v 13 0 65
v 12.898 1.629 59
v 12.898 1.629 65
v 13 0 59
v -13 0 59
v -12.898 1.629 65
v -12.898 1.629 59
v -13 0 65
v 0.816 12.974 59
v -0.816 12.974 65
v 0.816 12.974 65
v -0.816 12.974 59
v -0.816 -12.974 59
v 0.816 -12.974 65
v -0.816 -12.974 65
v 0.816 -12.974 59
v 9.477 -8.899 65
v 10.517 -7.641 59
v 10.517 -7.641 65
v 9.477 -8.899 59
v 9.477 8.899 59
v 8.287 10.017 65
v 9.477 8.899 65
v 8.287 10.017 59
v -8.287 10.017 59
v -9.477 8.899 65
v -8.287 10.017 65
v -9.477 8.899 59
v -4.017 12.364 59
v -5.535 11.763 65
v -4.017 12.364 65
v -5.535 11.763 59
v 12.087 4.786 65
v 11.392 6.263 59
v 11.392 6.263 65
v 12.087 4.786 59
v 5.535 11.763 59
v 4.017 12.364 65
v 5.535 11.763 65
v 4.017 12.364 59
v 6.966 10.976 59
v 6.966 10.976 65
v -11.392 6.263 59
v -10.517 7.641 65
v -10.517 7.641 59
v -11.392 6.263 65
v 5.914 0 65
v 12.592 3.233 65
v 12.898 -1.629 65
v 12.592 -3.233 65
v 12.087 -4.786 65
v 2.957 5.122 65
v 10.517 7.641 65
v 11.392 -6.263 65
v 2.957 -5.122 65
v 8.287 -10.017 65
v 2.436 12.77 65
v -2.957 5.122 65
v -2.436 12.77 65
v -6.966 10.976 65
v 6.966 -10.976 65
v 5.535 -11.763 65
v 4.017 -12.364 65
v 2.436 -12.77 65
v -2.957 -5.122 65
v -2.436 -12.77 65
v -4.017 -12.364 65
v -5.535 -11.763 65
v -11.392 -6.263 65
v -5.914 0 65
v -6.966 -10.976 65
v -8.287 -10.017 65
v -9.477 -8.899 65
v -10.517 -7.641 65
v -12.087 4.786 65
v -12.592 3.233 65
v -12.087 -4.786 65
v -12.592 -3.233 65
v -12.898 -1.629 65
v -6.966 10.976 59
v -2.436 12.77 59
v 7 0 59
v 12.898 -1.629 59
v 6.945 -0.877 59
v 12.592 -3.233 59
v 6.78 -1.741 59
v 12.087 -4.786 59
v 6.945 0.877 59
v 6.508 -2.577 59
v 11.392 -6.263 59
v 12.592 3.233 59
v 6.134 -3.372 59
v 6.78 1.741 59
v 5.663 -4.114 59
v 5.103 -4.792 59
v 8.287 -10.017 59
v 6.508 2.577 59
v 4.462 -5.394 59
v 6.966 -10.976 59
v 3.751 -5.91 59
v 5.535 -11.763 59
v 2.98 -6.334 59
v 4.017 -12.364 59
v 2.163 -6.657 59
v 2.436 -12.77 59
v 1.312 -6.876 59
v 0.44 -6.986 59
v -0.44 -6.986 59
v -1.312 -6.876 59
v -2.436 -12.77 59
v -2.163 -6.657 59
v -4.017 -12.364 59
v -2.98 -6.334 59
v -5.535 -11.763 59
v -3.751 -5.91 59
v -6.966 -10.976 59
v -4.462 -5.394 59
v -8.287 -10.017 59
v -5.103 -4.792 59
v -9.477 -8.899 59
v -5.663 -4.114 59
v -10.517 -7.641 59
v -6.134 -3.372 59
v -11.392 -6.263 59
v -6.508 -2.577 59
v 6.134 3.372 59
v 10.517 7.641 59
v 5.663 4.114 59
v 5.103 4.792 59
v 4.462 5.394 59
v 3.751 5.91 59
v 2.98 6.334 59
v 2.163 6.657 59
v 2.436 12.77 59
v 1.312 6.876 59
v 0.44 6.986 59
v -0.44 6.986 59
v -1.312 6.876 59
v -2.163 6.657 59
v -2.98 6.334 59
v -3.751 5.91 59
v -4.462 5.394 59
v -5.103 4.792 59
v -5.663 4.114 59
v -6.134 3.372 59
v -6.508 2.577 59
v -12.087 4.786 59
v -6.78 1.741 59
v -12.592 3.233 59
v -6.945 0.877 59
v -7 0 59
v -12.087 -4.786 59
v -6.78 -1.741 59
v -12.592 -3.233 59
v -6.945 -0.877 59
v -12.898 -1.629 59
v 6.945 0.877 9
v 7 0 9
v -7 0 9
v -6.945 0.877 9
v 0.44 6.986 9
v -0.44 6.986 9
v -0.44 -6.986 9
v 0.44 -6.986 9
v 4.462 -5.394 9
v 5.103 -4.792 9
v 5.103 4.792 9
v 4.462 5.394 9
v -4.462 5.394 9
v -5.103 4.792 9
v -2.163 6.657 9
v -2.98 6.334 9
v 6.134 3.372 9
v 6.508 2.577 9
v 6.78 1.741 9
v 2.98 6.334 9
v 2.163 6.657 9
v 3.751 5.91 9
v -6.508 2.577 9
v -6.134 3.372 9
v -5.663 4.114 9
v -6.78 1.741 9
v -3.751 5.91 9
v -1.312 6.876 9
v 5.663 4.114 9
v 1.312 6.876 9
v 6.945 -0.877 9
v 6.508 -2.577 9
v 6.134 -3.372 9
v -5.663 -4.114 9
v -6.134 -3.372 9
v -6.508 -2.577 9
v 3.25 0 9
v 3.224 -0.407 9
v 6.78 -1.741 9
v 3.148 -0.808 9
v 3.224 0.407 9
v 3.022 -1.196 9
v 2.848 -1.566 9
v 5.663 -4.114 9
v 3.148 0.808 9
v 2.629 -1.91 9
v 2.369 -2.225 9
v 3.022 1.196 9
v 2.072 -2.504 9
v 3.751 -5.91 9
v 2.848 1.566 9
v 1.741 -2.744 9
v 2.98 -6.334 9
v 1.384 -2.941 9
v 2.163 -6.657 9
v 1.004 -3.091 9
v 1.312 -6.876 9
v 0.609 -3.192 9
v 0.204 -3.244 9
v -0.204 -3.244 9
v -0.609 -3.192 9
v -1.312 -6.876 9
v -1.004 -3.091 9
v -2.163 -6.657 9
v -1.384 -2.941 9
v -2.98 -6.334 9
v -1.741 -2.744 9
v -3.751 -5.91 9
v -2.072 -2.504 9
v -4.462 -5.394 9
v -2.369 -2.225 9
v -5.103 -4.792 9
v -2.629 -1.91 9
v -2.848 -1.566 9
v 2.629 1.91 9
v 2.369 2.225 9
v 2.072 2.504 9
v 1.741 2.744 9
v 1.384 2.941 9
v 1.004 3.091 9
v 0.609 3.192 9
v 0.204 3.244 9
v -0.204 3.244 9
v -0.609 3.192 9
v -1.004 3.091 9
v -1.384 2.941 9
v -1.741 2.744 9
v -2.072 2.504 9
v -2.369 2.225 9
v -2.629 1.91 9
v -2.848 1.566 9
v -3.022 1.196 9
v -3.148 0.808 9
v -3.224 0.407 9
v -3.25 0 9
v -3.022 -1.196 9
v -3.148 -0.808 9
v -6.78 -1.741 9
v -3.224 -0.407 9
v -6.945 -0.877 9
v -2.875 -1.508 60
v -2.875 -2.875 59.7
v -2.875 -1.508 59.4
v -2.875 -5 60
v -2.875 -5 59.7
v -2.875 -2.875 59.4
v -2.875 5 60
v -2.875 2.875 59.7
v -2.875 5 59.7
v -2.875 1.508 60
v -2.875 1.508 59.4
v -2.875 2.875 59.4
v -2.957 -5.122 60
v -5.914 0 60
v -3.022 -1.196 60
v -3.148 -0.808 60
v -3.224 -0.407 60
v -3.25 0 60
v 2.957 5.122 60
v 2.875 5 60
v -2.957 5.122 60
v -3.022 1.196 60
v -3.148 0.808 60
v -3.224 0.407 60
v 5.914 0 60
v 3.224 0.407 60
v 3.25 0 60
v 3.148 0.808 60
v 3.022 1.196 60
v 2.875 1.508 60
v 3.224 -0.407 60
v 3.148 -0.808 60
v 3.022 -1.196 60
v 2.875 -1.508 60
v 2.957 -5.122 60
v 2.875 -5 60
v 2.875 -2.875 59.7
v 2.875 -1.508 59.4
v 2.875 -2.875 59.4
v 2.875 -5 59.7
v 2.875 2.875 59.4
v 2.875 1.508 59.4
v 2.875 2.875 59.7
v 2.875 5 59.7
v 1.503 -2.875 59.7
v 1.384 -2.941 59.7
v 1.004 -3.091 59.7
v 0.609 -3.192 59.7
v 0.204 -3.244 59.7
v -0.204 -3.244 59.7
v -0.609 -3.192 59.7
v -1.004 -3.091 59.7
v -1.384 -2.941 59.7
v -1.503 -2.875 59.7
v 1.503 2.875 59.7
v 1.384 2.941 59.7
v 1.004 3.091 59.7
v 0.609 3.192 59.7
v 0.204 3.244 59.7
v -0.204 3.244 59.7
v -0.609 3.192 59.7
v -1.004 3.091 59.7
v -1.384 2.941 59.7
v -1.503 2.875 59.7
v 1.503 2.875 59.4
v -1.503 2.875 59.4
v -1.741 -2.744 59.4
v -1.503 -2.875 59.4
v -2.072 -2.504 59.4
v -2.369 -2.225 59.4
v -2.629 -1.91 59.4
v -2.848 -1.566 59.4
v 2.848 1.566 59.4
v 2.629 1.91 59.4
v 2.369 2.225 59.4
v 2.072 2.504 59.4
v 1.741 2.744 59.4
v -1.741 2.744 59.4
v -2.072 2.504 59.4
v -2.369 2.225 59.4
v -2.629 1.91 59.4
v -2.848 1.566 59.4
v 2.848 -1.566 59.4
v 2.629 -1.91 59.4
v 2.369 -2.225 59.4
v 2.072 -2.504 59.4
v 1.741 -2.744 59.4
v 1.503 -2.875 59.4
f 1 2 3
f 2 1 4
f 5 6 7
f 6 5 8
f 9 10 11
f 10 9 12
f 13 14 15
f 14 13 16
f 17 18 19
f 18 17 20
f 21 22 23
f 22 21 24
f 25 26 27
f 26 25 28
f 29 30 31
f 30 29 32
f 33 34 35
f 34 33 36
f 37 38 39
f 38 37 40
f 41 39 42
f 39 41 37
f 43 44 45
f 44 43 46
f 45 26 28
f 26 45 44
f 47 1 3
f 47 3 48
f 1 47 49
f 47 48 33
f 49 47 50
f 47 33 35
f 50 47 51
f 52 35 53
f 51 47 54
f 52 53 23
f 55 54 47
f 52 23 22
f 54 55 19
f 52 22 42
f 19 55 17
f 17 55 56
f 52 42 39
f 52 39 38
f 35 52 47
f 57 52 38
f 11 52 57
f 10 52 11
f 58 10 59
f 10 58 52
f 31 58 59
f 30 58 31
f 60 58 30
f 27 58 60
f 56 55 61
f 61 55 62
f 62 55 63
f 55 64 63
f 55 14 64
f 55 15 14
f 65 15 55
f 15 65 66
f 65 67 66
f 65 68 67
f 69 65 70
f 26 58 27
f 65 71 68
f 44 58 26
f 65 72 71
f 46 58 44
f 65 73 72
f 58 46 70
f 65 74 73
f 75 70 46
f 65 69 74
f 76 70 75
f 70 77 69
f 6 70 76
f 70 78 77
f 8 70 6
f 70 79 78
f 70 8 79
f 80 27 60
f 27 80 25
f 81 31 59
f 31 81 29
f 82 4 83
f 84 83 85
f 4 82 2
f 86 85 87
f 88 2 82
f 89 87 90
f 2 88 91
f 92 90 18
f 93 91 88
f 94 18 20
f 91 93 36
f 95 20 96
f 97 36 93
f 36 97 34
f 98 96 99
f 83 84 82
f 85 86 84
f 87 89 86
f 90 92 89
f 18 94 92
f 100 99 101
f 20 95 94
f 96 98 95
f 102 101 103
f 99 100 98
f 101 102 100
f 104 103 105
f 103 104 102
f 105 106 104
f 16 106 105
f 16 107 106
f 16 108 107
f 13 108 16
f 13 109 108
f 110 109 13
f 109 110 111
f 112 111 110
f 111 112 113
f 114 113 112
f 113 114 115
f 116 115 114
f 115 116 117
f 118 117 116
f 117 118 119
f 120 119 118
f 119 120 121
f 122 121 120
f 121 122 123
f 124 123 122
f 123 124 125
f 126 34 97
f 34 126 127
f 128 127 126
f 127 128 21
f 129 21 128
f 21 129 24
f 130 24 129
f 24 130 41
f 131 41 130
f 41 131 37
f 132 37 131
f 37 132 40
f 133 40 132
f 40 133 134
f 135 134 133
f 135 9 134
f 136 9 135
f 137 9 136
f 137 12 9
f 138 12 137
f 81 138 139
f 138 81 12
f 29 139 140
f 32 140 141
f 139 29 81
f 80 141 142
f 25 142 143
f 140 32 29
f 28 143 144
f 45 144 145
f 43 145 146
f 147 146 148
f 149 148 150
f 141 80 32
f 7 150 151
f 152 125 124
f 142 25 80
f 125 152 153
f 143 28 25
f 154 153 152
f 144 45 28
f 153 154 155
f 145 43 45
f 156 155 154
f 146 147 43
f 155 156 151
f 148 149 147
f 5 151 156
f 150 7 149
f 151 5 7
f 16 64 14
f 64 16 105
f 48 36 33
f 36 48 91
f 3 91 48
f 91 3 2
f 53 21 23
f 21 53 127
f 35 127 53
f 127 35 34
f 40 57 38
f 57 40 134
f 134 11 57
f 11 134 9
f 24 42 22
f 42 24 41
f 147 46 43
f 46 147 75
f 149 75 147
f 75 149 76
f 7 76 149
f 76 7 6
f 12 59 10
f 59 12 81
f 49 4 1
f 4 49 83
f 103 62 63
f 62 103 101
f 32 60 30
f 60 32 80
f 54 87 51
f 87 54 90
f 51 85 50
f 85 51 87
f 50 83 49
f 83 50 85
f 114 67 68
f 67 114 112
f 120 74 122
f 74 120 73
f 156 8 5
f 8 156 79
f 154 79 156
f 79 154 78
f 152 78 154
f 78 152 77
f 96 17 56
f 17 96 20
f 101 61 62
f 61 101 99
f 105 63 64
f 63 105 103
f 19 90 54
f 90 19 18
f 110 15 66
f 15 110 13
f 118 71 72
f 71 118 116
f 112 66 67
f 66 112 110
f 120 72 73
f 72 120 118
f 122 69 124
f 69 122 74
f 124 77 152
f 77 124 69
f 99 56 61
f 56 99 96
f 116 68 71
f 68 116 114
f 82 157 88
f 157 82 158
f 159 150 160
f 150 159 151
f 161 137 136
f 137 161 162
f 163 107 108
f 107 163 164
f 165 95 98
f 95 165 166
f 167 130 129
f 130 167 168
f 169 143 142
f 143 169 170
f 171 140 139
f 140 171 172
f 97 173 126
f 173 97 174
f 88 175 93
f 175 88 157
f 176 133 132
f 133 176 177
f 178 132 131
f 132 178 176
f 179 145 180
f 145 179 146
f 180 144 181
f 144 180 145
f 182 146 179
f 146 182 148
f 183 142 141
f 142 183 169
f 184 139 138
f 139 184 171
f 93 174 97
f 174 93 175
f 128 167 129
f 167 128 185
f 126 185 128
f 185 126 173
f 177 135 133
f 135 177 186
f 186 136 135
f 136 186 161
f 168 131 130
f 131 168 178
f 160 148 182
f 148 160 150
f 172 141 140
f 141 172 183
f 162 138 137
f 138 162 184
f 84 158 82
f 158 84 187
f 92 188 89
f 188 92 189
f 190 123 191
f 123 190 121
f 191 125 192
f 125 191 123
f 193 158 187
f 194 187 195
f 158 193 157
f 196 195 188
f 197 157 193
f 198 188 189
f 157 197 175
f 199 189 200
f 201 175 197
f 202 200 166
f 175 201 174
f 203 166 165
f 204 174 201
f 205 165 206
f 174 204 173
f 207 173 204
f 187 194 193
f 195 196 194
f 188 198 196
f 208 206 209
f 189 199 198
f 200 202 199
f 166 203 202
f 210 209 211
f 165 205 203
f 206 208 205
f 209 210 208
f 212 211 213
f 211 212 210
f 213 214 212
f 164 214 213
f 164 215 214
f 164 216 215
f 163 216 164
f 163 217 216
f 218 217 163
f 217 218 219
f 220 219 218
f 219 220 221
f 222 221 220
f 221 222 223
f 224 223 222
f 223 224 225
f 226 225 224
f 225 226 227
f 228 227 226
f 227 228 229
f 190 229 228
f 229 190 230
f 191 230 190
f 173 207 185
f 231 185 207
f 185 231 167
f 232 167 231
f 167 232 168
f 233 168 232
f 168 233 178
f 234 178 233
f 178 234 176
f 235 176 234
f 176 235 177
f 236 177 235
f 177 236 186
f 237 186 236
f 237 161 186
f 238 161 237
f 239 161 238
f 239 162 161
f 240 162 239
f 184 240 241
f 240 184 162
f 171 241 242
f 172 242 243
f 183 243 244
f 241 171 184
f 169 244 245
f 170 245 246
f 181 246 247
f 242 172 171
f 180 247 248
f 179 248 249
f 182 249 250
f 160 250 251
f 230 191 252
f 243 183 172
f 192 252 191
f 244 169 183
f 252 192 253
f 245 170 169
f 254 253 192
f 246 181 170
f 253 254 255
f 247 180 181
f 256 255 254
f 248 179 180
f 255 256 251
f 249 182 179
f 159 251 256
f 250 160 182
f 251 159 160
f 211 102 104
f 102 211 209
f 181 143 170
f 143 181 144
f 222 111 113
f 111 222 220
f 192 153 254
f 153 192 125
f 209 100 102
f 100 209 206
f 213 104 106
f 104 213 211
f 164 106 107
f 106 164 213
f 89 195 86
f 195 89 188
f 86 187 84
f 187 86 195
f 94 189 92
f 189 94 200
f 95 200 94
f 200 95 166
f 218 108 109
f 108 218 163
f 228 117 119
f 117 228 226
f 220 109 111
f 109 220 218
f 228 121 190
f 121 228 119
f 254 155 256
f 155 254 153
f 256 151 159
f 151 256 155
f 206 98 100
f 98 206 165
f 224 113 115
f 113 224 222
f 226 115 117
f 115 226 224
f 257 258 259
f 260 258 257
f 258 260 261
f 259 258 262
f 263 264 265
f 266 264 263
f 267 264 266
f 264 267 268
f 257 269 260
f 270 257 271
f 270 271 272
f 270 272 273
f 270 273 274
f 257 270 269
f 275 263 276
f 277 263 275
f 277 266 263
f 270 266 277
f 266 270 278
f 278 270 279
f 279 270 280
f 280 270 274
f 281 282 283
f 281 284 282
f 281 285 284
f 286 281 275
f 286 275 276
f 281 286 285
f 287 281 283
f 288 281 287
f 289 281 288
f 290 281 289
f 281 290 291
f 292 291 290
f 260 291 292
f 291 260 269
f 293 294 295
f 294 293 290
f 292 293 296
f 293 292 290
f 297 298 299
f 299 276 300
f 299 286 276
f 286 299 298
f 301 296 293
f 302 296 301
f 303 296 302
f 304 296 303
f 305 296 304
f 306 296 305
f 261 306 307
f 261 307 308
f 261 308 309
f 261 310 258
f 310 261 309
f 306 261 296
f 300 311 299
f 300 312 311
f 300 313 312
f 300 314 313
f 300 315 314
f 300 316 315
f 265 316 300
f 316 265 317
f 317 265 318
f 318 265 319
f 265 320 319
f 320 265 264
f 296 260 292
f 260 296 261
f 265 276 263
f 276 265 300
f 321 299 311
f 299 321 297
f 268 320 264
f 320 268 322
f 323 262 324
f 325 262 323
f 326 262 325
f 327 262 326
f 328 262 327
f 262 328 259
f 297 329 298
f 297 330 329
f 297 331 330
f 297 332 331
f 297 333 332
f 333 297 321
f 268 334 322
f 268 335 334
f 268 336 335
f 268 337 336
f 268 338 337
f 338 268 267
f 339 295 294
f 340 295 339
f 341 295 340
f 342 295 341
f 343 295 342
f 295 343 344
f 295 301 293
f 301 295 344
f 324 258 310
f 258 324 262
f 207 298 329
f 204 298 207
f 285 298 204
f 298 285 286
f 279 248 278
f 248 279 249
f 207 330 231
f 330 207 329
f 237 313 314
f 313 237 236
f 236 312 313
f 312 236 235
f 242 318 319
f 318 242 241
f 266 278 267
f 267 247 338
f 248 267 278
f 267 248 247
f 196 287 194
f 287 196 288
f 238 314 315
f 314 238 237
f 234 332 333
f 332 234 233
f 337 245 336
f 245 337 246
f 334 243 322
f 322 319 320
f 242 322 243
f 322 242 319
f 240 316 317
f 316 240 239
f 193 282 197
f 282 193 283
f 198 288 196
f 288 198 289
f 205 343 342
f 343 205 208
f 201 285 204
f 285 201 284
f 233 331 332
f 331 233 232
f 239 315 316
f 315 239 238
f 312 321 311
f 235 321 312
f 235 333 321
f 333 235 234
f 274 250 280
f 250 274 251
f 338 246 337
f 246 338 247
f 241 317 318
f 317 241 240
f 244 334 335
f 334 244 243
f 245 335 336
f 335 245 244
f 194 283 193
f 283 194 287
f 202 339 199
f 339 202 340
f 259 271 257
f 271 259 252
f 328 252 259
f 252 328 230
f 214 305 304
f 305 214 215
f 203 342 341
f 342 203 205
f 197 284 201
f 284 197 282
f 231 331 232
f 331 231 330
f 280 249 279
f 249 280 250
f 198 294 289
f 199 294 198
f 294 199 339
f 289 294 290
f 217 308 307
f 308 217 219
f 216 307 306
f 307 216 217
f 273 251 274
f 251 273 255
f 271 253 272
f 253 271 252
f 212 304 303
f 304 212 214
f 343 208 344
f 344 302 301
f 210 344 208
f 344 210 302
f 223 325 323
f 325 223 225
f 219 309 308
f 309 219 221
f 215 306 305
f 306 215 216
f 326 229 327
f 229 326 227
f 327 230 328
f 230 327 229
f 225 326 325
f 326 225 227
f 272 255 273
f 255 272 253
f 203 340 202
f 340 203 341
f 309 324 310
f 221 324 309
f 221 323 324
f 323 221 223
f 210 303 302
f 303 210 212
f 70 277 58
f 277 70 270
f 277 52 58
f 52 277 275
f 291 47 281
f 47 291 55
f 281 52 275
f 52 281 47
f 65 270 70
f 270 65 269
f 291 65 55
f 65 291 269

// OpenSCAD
$fn = 50;


difference() {
	union() {
		translate(v = [0, 0, 59.0000000000]) {
			cylinder(h = 6, r = 13.0000000000);
		}
		translate(v = [0, 0, 9.0000000000]) {
			cylinder(h = 56, r = 7.0000000000);
		}
	}
	union() {
		translate(v = [0, 0, 65]) {
			rotate(a = [0, 0, 0]) {
				difference() {
					union() {
						#translate(v = [-2.8750000000, -5.0000000000, -5.3000000000]) {
							cube(size = [5.7500000000, 10, 0.3000000000]);
						}
						#translate(v = [-2.8750000000, -2.8750000000, -5.6000000000]) {
							cube(size = [5.7500000000, 5.7500000000, 0.3000000000]);
						}
						#translate(v = [-2.8750000000, -5.0000000000, 0]) {
							cube(size = [5.7500000000, 10, 0.3000000000]);
						}
						#translate(v = [-2.8750000000, -2.8750000000, 0.3000000000]) {
							cube(size = [5.7500000000, 5.7500000000, 0.3000000000]);
						}
						#translate(v = [0, 0, -100.0000000000]) {
							cylinder(h = 200, r = 3.2500000000);
						}
						translate(v = [0, 0, -5]) {
							#linear_extrude(height = 5) {
								polygon(points = [[5.9142500000, 0.0000000000], [2.9571250000, 5.1218907443], [-2.9571250000, 5.1218907443], [-5.9142500000, 0.0000000000], [-2.9571250000, -5.1218907443], [2.9571250000, -5.1218907443]]);
							}
						}
						#translate(v = [-2.8750000000, -5.0000000000, -5.3000000000]) {
							cube(size = [5.7500000000, 10, 0.3000000000]);
						}
						#translate(v = [-2.8750000000, -2.8750000000, -5.6000000000]) {
							cube(size = [5.7500000000, 5.7500000000, 0.3000000000]);
						}
						#translate(v = [-2.8750000000, -5.0000000000, 0]) {
							cube(size = [5.7500000000, 10, 0.3000000000]);
						}
						#translate(v = [-2.8750000000, -2.8750000000, 0.3000000000]) {
							cube(size = [5.7500000000, 5.7500000000, 0.3000000000]);
						}
						#translate(v = [0, 0, -100.0000000000]) {
							cylinder(h = 200, r = 3.2500000000);
						}
						#translate(v = [-2.8750000000, -5.0000000000, -5.3000000000]) {
							cube(size = [5.7500000000, 10, 0.3000000000]);
						}
						#translate(v = [-2.8750000000, -2.8750000000, -5.6000000000]) {
							cube(size = [5.7500000000, 5.7500000000, 0.3000000000]);
						}
						#translate(v = [-2.8750000000, -5.0000000000, 0]) {
							cube(size = [5.7500000000, 10, 0.3000000000]);
						}
						#translate(v = [-2.8750000000, -2.8750000000, 0.3000000000]) {
							cube(size = [5.7500000000, 5.7500000000, 0.3000000000]);
						}
						#translate(v = [0, 0, -100.0000000000]) {
							cylinder(h = 200, r = 3.2500000000);
						}
					}
					union();
				}
			}
		}
		#translate(v = [0, 0, -100.0000000000]) {
			cylinder(h = 200, r = 3.2500000000);
		}
	}
}
